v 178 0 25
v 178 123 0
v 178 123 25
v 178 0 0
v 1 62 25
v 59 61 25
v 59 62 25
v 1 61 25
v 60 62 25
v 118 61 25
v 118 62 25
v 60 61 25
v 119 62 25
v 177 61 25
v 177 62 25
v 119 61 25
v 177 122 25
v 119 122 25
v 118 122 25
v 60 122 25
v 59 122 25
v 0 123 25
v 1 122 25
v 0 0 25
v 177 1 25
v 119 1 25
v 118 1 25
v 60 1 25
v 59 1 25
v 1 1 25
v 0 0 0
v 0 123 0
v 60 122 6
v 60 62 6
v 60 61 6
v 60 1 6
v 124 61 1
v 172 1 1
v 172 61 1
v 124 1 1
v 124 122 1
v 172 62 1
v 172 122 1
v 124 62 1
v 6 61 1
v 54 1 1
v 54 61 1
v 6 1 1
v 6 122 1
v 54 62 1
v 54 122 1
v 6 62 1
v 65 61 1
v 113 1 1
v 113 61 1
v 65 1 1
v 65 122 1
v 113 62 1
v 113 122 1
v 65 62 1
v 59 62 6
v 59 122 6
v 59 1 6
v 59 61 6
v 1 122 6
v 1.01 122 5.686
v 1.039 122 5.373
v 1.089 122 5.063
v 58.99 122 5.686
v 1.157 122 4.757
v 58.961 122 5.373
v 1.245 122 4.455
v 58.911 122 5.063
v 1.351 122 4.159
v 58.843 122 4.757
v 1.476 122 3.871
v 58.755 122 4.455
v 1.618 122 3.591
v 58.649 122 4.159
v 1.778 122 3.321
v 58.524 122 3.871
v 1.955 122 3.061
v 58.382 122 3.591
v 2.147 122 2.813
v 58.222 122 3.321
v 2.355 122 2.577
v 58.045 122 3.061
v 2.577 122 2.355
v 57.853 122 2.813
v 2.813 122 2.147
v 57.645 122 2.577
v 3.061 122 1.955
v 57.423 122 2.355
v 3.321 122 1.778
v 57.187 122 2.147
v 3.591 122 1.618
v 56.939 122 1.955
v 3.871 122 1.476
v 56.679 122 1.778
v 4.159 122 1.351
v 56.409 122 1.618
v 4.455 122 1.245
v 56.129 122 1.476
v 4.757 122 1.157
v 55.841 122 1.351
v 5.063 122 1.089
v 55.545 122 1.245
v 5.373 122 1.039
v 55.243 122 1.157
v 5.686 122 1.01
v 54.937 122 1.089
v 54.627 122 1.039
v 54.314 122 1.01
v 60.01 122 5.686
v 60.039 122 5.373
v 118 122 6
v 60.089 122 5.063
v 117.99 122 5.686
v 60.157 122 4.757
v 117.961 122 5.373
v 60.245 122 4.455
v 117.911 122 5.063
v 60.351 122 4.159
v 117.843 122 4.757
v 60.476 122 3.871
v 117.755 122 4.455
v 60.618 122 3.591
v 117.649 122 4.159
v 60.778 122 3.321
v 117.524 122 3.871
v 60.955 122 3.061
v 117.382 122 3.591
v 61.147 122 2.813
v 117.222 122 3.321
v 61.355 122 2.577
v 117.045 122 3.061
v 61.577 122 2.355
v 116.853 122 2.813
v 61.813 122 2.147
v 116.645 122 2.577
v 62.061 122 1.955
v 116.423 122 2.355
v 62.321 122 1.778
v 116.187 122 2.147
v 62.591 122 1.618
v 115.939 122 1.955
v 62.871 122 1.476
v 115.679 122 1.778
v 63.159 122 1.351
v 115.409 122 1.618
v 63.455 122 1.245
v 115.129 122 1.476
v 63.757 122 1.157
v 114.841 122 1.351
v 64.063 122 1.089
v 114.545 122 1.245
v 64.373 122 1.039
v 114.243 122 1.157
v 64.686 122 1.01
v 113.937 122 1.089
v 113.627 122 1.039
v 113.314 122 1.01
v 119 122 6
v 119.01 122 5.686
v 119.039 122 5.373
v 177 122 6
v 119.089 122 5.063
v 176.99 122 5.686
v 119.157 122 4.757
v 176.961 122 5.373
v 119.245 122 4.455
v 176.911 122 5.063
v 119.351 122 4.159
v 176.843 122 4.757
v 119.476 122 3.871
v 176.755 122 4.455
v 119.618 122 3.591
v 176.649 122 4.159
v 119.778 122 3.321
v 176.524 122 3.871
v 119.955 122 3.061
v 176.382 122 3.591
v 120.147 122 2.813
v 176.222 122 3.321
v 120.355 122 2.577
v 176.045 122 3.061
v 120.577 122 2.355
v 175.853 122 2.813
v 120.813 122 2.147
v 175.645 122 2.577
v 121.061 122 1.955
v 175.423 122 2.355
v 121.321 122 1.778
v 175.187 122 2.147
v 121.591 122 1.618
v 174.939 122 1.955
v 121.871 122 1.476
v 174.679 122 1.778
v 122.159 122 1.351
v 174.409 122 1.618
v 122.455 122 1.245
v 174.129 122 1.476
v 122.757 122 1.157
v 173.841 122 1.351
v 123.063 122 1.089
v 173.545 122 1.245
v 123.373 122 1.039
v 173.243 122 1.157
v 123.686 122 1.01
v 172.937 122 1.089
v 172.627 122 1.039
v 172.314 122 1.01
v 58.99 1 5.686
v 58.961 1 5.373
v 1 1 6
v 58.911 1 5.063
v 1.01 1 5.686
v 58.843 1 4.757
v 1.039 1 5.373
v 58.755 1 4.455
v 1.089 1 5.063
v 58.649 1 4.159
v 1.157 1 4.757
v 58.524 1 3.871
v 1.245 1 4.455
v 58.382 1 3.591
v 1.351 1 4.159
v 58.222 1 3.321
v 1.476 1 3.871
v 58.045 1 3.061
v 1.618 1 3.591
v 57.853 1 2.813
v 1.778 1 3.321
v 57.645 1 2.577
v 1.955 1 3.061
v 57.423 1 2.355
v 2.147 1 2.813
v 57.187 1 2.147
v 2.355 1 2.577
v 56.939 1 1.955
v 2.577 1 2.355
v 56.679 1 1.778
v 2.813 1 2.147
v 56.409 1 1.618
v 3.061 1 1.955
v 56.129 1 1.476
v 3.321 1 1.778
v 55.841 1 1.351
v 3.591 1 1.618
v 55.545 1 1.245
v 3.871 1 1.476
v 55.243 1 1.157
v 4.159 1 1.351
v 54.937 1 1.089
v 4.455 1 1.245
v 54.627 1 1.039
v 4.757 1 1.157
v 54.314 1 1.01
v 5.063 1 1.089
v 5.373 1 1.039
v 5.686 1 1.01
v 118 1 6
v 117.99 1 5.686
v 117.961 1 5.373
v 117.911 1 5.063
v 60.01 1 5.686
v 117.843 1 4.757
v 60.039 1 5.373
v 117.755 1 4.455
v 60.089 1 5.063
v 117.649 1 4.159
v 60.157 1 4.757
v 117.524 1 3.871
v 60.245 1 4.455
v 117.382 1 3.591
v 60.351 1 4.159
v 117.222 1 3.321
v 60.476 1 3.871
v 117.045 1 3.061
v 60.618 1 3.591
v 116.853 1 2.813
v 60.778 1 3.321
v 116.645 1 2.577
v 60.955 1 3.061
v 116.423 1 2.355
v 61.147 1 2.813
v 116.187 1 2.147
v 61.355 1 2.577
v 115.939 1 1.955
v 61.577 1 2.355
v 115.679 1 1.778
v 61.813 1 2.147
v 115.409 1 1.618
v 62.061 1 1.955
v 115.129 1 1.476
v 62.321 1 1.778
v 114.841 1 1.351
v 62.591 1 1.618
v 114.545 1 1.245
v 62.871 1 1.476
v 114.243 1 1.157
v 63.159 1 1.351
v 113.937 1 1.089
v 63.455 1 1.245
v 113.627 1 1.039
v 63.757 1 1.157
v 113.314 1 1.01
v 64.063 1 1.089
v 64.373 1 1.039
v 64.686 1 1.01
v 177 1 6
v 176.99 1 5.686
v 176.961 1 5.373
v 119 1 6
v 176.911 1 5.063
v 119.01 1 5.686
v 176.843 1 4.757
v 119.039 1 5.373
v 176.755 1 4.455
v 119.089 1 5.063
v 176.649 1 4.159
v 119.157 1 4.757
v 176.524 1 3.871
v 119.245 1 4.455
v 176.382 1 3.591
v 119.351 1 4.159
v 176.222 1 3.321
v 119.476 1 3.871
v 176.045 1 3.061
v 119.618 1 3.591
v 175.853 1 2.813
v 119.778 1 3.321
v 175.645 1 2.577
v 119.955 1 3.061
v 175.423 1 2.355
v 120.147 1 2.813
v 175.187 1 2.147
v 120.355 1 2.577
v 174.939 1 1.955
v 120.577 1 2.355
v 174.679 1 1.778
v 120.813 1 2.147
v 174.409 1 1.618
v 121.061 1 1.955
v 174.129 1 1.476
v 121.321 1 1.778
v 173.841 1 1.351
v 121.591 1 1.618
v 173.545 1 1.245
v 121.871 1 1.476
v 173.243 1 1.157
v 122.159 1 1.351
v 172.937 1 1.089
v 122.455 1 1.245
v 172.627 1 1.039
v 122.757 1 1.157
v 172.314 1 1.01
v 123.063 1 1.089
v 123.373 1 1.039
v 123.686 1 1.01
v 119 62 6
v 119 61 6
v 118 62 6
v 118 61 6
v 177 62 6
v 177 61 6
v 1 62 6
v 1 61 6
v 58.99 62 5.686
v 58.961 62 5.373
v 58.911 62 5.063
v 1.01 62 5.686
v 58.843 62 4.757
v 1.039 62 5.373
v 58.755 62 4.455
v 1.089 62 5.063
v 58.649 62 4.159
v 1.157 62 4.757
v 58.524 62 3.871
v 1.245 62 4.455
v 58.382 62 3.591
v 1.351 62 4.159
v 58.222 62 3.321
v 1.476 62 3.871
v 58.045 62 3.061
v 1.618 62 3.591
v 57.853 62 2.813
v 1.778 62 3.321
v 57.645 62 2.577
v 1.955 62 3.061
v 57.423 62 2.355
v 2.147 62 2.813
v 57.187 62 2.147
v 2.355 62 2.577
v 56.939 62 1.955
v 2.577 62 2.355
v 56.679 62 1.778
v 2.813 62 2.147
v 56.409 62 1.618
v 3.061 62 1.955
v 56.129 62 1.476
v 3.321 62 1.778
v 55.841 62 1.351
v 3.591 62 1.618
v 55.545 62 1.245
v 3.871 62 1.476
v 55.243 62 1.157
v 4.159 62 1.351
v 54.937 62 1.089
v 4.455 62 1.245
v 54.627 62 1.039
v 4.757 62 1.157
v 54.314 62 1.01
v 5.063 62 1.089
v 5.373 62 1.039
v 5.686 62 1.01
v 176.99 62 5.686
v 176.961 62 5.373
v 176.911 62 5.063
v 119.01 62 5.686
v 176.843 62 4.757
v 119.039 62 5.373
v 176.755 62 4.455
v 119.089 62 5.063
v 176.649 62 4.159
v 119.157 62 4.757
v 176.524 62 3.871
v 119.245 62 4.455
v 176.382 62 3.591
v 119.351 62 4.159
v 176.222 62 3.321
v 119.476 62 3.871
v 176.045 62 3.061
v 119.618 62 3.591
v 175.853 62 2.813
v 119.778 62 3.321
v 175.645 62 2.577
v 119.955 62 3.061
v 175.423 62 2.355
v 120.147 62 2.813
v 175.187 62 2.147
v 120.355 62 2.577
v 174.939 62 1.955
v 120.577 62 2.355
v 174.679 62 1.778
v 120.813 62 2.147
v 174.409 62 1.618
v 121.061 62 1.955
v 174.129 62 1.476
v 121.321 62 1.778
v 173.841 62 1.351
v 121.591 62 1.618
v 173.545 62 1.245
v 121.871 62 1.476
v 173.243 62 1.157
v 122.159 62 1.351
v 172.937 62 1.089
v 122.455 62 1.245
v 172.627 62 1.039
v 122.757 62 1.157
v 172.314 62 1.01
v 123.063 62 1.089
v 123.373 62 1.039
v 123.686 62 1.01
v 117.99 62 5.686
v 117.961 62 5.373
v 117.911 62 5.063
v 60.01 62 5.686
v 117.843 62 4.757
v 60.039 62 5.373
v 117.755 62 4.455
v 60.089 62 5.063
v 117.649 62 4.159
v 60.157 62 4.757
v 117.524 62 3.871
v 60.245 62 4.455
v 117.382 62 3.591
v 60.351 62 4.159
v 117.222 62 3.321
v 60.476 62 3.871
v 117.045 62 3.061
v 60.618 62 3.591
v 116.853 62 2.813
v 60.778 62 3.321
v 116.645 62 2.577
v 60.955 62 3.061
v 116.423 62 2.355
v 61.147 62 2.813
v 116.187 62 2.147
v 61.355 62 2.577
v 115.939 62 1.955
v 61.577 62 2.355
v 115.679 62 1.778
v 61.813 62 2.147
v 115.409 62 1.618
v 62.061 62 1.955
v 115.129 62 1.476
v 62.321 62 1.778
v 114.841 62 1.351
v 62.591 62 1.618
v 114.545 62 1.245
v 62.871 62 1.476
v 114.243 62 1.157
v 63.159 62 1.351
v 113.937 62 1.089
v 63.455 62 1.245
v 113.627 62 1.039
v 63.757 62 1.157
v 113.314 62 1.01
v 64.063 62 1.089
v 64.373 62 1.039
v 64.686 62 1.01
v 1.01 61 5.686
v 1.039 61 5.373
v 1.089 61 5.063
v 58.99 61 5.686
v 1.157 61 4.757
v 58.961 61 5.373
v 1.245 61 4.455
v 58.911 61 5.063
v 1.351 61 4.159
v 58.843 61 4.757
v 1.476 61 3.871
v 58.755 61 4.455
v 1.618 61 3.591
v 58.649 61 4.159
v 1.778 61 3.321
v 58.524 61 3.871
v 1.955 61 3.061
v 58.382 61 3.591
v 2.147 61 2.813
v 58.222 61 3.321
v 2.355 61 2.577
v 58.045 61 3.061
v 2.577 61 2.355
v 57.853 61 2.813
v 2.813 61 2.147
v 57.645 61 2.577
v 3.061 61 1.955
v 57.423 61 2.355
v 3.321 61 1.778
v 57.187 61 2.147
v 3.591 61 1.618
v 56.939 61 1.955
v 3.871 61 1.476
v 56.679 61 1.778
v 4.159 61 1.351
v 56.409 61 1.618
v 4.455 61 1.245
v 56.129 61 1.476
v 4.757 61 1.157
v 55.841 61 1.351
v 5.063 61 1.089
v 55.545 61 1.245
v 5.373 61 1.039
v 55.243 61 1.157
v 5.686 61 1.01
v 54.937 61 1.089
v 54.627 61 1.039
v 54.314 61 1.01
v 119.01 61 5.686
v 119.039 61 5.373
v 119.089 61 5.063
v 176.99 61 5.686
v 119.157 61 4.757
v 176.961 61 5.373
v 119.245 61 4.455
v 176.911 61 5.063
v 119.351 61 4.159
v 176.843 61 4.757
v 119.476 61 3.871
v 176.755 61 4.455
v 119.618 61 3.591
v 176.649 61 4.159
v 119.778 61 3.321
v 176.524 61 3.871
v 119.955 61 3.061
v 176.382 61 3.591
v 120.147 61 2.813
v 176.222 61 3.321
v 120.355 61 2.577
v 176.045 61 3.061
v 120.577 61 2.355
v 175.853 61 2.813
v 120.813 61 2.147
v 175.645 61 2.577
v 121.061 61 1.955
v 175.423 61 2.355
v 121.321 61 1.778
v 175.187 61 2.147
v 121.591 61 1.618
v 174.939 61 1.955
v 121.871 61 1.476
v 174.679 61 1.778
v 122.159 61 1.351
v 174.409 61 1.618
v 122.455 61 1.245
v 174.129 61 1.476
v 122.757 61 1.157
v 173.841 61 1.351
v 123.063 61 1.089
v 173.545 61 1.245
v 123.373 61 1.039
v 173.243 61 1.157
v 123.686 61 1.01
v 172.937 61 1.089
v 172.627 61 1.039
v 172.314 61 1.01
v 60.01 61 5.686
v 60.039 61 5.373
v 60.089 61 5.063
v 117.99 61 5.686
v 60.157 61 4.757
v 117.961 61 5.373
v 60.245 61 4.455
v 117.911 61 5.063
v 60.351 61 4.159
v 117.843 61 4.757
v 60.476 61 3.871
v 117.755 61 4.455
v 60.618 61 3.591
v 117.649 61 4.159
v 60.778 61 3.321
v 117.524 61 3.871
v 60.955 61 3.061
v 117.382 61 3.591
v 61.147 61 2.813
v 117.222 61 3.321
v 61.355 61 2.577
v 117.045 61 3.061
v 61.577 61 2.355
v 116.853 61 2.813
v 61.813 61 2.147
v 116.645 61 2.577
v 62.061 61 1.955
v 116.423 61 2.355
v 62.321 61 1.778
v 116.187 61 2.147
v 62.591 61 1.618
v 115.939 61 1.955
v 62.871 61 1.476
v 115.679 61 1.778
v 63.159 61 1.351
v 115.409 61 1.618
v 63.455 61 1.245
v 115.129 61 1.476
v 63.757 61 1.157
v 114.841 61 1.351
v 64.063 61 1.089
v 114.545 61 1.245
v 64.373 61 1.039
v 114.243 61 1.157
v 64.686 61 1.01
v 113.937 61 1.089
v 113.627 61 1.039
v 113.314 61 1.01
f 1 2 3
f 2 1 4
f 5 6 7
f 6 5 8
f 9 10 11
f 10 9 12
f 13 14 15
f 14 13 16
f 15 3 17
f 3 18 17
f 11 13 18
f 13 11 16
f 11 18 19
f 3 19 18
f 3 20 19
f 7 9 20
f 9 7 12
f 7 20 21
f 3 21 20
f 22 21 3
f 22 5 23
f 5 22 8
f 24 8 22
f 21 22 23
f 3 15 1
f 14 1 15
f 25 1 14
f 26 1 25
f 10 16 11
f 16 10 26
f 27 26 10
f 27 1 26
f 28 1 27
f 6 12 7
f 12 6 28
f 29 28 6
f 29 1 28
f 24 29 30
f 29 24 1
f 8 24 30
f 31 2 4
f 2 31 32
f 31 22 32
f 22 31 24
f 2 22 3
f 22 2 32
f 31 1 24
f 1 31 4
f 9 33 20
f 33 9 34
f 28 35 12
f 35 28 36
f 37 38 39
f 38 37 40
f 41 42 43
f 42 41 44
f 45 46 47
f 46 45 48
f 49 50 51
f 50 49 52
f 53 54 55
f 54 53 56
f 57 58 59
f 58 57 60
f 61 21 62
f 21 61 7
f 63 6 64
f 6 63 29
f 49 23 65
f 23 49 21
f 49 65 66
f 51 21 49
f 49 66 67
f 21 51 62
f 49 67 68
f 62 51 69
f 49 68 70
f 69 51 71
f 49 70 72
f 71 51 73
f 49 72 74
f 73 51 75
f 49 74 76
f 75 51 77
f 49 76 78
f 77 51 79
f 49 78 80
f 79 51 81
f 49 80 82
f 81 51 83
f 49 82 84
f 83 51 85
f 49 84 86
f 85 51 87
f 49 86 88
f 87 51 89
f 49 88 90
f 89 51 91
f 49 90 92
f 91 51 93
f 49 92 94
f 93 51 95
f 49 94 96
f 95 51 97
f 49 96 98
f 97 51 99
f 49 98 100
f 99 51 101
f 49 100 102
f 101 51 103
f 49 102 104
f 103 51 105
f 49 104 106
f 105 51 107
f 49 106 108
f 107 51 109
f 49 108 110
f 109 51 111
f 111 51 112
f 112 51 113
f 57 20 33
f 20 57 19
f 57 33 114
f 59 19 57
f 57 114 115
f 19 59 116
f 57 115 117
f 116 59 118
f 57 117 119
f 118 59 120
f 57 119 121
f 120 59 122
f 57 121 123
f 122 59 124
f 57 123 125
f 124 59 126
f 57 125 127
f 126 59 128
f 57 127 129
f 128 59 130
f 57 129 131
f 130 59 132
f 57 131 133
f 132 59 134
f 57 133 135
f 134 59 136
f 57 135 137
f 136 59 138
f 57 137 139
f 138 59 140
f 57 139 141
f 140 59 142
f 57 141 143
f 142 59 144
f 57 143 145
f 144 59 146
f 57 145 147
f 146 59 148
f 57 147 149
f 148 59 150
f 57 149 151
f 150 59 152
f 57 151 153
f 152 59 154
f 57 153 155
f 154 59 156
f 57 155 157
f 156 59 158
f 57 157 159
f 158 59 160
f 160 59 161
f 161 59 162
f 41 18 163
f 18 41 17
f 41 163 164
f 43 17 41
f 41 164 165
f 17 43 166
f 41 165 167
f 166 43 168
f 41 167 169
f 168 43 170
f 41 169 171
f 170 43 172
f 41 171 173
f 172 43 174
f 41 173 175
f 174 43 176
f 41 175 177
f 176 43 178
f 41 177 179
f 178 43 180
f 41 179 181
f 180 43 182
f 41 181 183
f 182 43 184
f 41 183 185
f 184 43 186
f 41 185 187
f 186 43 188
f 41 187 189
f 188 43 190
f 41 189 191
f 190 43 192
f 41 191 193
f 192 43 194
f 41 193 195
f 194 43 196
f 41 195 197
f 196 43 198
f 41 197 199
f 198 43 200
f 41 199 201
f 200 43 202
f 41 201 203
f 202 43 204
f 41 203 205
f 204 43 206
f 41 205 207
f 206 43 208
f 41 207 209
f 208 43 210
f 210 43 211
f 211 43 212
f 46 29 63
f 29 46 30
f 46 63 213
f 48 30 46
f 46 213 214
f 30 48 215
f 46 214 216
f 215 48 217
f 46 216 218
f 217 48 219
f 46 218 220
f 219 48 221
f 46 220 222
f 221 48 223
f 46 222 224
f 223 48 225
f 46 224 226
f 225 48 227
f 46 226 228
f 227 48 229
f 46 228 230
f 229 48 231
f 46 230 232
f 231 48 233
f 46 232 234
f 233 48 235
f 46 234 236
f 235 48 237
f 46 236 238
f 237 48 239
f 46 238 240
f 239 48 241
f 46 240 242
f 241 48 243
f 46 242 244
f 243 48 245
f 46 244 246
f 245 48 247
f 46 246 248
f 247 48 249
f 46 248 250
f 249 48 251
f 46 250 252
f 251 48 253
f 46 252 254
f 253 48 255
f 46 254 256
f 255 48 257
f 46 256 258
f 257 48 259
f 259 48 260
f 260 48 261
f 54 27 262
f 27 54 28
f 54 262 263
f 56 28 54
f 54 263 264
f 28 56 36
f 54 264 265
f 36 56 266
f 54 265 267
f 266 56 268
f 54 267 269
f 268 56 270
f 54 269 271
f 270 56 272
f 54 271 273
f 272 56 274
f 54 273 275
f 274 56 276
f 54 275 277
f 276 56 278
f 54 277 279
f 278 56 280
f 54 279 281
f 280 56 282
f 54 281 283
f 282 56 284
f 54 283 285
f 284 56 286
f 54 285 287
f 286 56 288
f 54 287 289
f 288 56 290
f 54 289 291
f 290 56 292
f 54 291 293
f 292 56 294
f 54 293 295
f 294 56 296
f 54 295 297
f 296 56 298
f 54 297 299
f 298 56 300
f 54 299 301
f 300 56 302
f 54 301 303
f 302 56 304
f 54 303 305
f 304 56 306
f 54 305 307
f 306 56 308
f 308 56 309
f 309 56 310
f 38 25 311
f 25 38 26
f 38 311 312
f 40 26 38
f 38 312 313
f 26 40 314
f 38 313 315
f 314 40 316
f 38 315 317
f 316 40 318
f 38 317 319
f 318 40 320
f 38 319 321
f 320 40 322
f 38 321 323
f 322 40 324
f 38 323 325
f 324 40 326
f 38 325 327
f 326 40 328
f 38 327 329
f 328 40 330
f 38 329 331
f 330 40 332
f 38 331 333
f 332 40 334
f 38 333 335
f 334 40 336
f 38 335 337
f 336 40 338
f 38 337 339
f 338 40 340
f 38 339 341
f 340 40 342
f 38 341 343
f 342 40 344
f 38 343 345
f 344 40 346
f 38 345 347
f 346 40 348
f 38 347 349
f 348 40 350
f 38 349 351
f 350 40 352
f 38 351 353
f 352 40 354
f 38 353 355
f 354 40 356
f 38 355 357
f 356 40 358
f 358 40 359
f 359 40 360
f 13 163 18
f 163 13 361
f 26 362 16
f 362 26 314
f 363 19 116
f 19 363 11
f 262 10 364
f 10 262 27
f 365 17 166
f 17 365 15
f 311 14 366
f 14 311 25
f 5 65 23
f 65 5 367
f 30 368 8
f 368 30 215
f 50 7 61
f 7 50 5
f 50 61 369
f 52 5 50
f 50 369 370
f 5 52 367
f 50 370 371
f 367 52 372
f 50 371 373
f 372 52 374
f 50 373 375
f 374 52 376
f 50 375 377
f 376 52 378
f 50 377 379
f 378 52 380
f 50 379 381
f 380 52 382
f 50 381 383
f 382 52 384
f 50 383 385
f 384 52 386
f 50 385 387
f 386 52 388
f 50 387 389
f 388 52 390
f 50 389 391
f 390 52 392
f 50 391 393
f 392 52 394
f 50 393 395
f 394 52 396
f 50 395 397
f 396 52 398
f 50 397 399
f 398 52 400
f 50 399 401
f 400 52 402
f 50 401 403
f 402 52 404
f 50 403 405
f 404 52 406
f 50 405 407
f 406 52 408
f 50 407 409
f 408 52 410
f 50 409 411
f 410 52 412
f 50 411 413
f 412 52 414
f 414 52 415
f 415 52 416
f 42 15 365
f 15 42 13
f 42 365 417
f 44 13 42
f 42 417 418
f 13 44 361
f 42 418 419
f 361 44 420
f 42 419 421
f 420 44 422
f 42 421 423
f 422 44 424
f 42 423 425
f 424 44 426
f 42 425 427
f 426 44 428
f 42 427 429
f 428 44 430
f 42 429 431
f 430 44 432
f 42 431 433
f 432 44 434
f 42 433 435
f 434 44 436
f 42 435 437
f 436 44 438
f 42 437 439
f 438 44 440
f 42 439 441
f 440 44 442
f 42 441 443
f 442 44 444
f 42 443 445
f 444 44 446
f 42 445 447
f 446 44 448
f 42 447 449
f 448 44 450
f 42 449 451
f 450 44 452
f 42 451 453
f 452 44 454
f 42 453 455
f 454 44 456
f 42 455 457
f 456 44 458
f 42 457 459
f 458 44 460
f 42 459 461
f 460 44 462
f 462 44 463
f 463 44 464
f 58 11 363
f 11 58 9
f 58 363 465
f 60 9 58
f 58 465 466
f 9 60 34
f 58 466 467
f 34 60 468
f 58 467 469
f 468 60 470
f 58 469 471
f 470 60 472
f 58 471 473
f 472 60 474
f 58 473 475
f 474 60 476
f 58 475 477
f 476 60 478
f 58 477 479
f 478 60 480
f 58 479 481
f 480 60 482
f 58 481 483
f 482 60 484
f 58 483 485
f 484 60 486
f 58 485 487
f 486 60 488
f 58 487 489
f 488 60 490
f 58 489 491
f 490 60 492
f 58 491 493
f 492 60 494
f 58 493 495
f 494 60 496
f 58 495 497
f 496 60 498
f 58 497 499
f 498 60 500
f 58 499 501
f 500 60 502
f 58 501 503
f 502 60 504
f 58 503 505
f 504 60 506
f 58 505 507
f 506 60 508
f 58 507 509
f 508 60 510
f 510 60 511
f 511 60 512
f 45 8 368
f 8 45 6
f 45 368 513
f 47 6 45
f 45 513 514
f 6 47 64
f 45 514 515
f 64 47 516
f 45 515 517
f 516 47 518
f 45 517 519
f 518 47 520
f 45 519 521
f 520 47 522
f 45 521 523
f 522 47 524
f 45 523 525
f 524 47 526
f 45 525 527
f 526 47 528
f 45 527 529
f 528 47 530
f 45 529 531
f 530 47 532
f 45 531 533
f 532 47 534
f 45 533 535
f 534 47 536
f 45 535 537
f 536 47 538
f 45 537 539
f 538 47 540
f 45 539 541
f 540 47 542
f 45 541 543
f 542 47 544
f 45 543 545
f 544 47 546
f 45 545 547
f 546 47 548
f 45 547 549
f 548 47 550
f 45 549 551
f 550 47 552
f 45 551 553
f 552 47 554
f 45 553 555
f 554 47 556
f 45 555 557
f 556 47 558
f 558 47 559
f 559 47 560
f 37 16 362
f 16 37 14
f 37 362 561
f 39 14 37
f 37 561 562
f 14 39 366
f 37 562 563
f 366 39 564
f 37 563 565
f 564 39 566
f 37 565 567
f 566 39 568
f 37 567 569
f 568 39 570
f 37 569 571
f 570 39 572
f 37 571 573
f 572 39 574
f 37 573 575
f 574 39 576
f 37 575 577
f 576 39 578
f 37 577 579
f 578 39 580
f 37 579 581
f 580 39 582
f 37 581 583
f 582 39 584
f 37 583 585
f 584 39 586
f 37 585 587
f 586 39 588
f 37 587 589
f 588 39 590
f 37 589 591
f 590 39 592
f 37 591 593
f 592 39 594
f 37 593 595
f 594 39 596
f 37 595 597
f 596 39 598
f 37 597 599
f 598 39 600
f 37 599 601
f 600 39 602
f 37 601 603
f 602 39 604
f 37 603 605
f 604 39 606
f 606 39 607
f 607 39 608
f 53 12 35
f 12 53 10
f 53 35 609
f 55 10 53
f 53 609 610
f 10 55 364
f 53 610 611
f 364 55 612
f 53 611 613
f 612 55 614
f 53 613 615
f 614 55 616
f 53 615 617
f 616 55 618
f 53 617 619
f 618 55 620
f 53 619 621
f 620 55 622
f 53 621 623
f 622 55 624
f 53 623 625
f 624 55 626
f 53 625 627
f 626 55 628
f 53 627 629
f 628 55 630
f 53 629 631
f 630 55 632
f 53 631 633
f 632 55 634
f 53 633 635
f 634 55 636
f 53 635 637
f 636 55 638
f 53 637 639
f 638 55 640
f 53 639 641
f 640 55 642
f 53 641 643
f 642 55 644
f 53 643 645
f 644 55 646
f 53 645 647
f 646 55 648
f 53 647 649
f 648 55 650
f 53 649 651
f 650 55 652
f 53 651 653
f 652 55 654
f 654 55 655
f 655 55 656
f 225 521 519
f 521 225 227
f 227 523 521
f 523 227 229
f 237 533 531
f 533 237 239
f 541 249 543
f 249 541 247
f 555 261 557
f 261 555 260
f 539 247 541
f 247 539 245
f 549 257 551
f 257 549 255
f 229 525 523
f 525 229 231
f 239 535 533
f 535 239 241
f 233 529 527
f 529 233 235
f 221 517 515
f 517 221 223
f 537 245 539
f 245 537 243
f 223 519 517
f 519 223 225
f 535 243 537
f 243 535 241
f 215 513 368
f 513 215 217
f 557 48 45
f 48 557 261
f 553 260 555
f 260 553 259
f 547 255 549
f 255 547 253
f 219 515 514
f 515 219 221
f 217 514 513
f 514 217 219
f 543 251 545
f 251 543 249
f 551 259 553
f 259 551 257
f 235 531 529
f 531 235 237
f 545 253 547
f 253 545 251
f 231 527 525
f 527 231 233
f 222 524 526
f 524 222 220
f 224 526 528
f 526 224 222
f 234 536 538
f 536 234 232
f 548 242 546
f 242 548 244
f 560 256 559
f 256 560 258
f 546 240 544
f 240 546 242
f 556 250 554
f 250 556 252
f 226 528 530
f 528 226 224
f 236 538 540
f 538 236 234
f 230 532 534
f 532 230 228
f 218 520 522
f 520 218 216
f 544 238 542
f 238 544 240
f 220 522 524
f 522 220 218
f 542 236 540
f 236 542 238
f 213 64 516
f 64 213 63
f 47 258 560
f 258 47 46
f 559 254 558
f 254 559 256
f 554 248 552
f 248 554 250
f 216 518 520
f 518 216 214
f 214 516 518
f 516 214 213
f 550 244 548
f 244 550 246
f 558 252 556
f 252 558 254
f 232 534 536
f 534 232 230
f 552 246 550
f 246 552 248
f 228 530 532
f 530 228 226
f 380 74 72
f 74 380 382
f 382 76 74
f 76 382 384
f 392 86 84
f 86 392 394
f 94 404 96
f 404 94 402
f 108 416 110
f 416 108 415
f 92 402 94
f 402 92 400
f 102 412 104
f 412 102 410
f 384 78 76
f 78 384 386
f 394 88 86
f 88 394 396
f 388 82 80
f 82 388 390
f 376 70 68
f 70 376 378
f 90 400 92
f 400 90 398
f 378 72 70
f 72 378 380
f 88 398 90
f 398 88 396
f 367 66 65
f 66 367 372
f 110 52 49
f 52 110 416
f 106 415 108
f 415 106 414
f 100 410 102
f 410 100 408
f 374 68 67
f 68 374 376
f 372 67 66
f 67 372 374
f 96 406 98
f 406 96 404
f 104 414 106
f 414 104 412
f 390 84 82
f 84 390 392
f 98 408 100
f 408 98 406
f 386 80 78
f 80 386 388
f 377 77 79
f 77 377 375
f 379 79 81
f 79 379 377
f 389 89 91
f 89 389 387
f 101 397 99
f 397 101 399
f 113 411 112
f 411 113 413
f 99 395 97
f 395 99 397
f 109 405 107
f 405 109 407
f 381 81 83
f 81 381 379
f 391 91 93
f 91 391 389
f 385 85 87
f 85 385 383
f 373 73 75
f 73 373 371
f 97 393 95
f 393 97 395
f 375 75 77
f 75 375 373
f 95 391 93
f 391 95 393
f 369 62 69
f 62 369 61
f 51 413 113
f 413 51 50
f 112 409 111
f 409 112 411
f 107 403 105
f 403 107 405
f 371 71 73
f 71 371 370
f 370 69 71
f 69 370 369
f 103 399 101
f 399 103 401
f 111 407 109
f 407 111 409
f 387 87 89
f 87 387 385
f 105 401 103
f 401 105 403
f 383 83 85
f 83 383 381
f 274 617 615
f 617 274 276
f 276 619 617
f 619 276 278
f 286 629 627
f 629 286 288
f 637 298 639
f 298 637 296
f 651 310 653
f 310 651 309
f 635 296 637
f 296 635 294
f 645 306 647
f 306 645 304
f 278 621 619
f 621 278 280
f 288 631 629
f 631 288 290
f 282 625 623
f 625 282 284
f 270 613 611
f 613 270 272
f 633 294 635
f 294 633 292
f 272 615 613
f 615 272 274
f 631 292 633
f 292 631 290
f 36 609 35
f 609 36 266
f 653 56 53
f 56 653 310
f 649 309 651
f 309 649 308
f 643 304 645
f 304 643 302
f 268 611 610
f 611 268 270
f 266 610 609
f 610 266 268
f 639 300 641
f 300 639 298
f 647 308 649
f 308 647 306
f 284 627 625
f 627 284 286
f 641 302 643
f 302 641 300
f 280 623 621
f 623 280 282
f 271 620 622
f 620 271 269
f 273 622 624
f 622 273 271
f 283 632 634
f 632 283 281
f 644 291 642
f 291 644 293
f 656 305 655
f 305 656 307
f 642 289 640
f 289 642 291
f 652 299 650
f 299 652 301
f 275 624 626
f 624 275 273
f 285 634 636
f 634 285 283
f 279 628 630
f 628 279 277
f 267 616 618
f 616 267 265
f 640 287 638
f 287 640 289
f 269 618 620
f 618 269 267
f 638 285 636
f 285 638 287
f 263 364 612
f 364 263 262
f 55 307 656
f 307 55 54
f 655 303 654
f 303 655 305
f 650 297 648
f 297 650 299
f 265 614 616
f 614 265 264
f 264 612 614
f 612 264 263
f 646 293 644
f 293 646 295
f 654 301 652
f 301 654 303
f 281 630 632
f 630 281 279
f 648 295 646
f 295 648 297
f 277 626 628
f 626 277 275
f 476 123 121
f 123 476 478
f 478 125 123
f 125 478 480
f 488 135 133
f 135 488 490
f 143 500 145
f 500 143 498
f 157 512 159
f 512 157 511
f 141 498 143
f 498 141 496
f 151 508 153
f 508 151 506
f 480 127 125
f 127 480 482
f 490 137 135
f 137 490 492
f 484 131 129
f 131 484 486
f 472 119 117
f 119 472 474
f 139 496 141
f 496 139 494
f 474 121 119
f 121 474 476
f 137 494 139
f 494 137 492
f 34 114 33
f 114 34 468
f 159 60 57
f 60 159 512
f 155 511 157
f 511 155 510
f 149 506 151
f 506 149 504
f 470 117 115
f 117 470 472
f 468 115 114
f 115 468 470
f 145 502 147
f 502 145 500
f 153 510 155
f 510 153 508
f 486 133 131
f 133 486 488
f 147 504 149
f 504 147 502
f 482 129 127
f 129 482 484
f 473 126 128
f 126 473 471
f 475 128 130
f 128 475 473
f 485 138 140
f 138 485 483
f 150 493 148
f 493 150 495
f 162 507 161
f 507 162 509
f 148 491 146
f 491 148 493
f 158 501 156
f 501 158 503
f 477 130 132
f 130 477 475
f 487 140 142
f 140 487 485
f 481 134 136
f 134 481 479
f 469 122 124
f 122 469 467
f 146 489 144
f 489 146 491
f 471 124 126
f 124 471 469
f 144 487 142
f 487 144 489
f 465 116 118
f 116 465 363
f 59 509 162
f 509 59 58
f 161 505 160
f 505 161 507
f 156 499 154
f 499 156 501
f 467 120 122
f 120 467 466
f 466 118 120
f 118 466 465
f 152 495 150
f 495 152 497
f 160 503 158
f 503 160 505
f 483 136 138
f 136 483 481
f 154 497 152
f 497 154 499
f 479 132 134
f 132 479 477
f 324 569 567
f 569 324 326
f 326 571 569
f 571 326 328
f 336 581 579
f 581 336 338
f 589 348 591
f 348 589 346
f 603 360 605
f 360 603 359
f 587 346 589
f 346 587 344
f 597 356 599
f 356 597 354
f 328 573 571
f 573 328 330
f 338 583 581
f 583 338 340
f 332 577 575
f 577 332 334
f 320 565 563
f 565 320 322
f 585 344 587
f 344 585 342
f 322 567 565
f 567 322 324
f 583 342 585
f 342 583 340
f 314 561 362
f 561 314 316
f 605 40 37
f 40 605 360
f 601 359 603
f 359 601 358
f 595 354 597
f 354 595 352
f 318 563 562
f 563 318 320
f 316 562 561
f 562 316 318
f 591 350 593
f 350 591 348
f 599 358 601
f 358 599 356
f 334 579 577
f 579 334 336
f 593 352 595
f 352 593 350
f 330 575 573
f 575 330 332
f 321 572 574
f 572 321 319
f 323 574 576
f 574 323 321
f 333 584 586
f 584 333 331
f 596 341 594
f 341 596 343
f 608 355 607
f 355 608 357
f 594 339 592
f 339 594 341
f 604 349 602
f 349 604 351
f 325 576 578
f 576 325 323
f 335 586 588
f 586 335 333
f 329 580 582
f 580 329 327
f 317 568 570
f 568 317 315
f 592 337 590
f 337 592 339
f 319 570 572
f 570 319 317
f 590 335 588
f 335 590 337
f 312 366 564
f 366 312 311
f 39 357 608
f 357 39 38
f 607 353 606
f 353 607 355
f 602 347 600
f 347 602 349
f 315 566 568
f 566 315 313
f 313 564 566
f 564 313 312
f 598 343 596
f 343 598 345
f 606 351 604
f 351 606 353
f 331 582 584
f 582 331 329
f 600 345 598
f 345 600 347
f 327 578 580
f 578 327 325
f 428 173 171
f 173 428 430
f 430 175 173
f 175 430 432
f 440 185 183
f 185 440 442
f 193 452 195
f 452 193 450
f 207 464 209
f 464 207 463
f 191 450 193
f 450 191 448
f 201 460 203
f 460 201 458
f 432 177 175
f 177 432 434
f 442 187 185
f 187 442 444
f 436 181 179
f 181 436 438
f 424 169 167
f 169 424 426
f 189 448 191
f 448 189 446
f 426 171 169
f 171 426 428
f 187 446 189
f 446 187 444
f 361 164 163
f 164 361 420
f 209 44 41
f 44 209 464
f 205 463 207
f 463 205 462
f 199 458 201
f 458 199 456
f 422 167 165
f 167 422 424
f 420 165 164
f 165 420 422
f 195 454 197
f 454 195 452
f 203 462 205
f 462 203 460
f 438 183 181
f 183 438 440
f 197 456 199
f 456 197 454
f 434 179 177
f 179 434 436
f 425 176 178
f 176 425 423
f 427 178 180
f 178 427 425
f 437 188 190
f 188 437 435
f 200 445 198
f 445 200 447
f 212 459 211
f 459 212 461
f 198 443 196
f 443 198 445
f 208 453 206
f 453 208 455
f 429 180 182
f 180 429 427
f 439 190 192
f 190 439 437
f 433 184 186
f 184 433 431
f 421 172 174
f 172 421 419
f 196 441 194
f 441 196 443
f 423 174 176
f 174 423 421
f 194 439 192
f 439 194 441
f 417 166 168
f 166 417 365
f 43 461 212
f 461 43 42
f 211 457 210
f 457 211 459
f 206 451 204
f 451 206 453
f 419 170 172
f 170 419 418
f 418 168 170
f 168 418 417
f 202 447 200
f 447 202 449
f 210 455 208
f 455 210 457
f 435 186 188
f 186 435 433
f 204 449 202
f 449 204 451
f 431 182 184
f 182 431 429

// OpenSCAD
include <boardgame_insert_toolkit_lib.2.scad>;

// determines whether lids are output.
g_b_print_lid = true;

// determines whether boxes are output.
g_b_print_box = true; 

// Focus on one box
g_isolated_print_box = ""; 

// Used to visualize how all of the boxes fit together. 
g_b_visualization = false;          
        
// this is the outer wall thickness. 
//Default = 1.5mm
g_wall_thickness = 1.0;

// The tolerance value is extra space put between planes of the lid and box that fit together.
// Increase the tolerance to loosen the fit and decrease it to tighten it.
//
// Note that the tolerance is applied exclusively to the lid.
// So if the lid is too tight or too loose, change this value ( up for looser fit, down for tighter fit ) and 
// you only need to reprint the lid.
// 
// The exception is the stackable box, where the bottom of the box is the lid of the box below,
// in which case the tolerance also affects that box bottom.
//
g_tolerance = 0.15;

// This adjusts the position of the lid detents downward. 
// The larger the value, the bigger the gap between the lid and the box.
g_tolerance_detents_pos = 0.1;

aw_size_x = 178.0; // 180.0; // 308.0 - 40.0 - 40.0 - 24.0 - 24.0;
aw_size_y = 123.0;
aw_size_z = 25.0;


data =
  [
    [
      "simple box",
      [
        [ BOX_SIZE_XYZ, [aw_size_x, aw_size_y, aw_size_z] ],
        [ BOX_NO_LID_B, t],
        [
          BOX_COMPONENT,
          [
            [
              CMP_COMPARTMENT_SIZE_XYZ,
              [
                58, // (aw_size_x - 1.0 - 1.0 - 1.0 - 1.0) / 3.0,
                60, // (aw_size_y - 1.0 - 1.0 - 1.0) / 2,
                aw_size_z - g_wall_thickness
              ]
            ],
            [ CMP_NUM_COMPARTMENTS_XY, [3, 2] ],
            [ CMP_SHAPE, FILLET ],
            [ CMP_FILLET_RADIUS, 5.0 ],
            //[ CMP_CUTOUT_SIDES_4B, [ f, f, t, t ] ],
            //[ CMP_CUTOUT_HEIGHT_PCT, 60 ],
            //[ CMP_CUTOUT_DEPTH_PCT, 0 ],
            //[ CMP_CUTOUT_WIDTH_PCT, 50 ],
          ]
        ],
      ]
    ]
  ];

MakeAll();
